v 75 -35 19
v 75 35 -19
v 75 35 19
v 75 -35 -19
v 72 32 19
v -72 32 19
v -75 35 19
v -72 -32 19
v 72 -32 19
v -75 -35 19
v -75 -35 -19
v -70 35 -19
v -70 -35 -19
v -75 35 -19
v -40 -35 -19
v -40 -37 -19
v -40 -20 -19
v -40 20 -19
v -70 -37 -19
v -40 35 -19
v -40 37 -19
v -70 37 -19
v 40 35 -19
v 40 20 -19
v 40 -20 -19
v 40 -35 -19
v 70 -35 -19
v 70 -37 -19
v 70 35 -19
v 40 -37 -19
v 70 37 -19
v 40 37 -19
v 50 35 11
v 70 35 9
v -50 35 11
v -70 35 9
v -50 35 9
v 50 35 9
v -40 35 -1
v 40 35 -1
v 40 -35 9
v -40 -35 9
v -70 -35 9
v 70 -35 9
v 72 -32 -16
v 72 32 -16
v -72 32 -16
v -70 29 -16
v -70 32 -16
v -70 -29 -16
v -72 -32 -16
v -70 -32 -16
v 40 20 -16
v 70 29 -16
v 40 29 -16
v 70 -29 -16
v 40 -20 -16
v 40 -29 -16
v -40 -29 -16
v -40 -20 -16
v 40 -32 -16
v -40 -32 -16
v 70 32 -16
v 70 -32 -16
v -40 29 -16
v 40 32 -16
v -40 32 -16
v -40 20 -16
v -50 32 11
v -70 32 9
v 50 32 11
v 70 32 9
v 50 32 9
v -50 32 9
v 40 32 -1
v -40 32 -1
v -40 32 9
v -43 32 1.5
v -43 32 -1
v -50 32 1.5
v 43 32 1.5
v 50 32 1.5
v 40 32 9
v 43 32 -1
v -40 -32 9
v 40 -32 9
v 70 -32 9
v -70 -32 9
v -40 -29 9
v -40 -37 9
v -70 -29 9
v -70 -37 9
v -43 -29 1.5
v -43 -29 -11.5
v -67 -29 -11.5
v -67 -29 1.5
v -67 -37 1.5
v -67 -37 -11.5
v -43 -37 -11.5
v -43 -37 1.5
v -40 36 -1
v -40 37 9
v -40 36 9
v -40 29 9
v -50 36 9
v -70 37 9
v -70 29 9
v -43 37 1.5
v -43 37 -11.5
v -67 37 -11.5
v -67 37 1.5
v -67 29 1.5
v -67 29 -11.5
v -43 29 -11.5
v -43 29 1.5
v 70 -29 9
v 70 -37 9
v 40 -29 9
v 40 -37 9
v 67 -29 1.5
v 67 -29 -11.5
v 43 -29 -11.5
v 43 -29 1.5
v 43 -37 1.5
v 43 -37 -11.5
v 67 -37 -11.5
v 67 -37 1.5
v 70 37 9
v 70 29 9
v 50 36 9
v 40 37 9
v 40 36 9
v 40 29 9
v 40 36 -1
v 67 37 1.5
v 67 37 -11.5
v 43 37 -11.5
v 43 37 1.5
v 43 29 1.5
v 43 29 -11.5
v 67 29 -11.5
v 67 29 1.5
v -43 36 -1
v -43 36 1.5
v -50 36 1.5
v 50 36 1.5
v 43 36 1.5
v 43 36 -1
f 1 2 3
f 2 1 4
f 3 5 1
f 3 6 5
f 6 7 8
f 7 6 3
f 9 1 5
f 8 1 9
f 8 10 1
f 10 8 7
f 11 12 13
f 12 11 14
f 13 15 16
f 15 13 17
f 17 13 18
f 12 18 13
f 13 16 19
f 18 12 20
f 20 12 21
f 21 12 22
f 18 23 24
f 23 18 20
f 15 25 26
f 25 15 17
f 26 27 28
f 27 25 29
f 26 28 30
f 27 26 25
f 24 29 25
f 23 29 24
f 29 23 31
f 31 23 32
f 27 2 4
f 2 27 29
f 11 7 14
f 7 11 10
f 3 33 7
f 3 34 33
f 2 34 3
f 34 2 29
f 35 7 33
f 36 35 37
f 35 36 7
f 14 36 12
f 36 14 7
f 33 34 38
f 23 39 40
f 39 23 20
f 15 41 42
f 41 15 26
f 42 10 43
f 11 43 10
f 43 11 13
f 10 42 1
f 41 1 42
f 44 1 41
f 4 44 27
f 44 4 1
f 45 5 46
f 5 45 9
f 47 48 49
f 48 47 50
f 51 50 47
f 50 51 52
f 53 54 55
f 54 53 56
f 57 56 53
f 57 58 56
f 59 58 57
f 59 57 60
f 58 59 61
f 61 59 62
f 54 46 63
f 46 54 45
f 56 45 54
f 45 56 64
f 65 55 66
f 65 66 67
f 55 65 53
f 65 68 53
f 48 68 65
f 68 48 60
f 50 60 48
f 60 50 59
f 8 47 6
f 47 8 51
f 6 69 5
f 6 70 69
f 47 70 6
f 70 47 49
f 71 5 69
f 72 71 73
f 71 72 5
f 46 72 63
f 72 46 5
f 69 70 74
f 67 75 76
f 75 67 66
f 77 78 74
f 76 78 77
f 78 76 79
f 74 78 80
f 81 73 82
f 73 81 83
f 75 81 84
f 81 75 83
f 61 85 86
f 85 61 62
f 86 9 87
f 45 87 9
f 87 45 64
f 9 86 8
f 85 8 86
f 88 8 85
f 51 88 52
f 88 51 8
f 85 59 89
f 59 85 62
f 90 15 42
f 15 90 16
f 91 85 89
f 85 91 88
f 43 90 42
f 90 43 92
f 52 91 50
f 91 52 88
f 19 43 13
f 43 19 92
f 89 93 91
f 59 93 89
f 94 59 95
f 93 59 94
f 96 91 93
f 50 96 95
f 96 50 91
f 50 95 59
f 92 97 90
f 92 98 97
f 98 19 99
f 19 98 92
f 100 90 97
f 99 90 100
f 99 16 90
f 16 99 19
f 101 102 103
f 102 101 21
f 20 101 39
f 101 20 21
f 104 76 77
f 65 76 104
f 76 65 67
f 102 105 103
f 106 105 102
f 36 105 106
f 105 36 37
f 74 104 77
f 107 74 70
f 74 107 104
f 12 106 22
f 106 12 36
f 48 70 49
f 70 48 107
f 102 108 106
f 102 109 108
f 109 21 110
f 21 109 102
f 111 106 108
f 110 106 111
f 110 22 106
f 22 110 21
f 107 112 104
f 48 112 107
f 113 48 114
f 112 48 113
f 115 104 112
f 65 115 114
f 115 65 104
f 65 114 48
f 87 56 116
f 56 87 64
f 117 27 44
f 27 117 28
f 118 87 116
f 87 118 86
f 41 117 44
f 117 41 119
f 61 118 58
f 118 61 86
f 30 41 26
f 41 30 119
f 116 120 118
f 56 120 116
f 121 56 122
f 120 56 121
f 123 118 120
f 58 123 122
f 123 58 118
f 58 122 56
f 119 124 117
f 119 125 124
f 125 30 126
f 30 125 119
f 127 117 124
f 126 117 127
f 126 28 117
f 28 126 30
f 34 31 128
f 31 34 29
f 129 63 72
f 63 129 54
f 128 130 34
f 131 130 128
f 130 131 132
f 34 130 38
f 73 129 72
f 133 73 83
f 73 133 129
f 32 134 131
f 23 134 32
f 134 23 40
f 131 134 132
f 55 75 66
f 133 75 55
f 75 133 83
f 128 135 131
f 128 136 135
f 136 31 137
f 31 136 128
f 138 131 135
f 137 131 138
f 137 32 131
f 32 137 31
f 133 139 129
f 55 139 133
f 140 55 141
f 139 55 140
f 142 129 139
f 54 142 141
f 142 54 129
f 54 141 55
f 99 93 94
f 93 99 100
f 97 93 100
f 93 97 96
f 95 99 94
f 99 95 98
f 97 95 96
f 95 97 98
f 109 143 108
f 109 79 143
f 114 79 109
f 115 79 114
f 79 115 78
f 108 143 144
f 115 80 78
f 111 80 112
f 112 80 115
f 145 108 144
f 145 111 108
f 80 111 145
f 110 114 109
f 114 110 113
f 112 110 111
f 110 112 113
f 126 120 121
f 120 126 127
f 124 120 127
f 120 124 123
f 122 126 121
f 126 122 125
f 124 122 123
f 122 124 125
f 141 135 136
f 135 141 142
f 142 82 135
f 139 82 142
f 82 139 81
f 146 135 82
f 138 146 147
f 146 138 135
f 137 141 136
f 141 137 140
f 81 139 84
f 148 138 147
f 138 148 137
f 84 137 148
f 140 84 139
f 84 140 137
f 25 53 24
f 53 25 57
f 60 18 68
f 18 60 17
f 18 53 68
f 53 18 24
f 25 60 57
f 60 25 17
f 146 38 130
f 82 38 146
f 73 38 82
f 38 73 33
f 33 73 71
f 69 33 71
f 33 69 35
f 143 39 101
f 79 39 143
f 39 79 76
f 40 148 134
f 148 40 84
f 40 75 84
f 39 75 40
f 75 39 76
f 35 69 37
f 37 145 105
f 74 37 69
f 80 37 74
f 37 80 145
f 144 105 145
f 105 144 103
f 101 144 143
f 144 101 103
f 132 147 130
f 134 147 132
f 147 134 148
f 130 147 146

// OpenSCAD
body_length=150;
body_width=70;
body_height=38;
wall=3;
servo_w=13;
servo_l=24;
servo_h=23;
$fn=24;
difference(){
 union(){
  difference(){
   cube([body_length, body_width, body_height], center=true);
   translate([0,0,wall]) cube([body_length-2*wall, body_width-2*wall, body_height], center=true);
  }
  for(sx=[-1,1]) for(sy=[-1,1]) translate([sx*(body_length/2-20), sy*(body_width/2-2), -5]) cube([30, 8, 28], center=true);
 }
 union(){
  for(sx=[-1,1]) for(sy=[-1,1]) translate([sx*(body_length/2-20), sy*(body_width/2-2), -5]) cube([servo_l, 20, servo_w], center=true);
  translate([0,0,-body_height/2+1]) cube([80, 40, 4], center=true);
  translate([0, body_width/2-1, 5]) cube([100, 4, 12], center=true);
 }
}
